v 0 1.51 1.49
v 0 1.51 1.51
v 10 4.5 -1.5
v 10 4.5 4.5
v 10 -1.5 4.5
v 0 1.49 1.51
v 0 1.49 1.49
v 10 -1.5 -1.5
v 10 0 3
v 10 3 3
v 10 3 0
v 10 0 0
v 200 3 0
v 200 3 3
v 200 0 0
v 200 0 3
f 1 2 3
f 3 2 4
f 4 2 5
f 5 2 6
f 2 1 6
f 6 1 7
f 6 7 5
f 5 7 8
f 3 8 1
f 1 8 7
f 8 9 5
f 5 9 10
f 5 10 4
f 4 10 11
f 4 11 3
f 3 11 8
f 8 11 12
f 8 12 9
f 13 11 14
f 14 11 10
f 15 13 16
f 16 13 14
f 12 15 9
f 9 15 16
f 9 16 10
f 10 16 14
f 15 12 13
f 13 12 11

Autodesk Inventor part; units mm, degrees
ref_plane "YZ Plane" through (0, 0, 0) normal (1, 0, 0) x (0, 1, 0)
ref_plane "XZ Plane" through (0, 0, 0) normal (0, 1, 0) x (-1, 0, 0)
ref_plane "XY Plane" through (0, 0, 0) normal (0, 0, 1) x (1, 0, 0)
sketch "Skizze1" plane through (0, 0, 0) normal (0, 0, 1) x (1, 0, 0)
  line L0 (0, 0) -> (200, 0)
  line L1 (200, 0) -> (200, 3)
  line L2 (200, 3) -> (0, 3)
  line L3 (0, 3) -> (0, 0)
  dimension "d0" = 200
  dimension "d1" = 3
extrude "Extrusion1" add sketch "Skizze1" along normal blind 3
sketch "Skizze2" plane through (200, 0, 0) normal (1, 0, 0) x (0, 0, -1)
  point P0 (0, 0)
sketch "Skizze3" plane through (0, 0, 0) normal (0, -1, 0) x (1, 0, 0)
  line L0 (0, 0) -> (200, 0) projected
  line L1 (200, 0) -> (53.164, 0)
  dimension "d4" = 146.836
sketch "Skizze4" plane through (10, 0, 0) normal (-1, 0, 0) x (0, 0, 1)
  line L0 (0, 3) -> (3, 3) projected
  line L1 (0, 0) -> (3, 3)
  line L2 (3, 3) -> (0, 3)
  line L3 (0, 3) -> (3, 0)
  line L4 (-1.5, -1.5) -> (4.5, -1.5)
  line L5 (4.5, -1.5) -> (4.5, 4.5)
  line L6 (4.5, 4.5) -> (-1.5, 4.5)
  line L7 (-1.5, 4.5) -> (-1.5, -1.5)
  line L8 (-1.5, -1.5) -> (4.5, 4.5) construction
  line L9 (4.5, -1.5) -> (-1.5, 4.5) construction
  point P0 (1.5, 1.5)
  dimension "d14" = 6
  dimension "d15" = 6
extrude "Extrusion2" add sketch "Skizze4" along normal blind 10 contours L0 L1 L3 | L7 L6 L5 L4
chamfer "Fase1" distance 2.99 distance2 10 1 edges at (0, 1.5, -1.5) measured on face at (0, 2.5, 0.5)
chamfer "Fase2" distance 2.99 distance2 10 1 edges at (0, 1.5, 4.5) measured on face at (0, 2.5, 2.493)
chamfer "Fase3" distance 2.99 distance2 10 1 edges at (0, -1.5, 1.5) measured on face at (0, 0.5, 1.5035)
chamfer "Fase4" distance 2.99 distance2 10 1 edges at (0, 4.5, 1.5) measured on face at (0, 3.4965, 1.4965)
sketch "Skizze9" plane through (10, 0, 0) normal (0, -1, 0) x (1, 0, 0)
  line L0 (0, 3) -> (190, 3) projected
  line L1 (40.0497, 3) -> (40.0497, 0)
  line L2 (0, 0) -> (190, 0) projected
  point P0 (-10, 0)
sketch "Skizze10" plane through (0, 0, 0) normal (0, 0, -1) x (-1, 0, 0)
  line L0 (-200, 3) -> (-10, 3) projected
  line L1 (-51.2532, 3) -> (-50.0501, 0)
  line L2 (-10, 0) -> (-200, 0) projected
  point P0 (0, 0)
properties part number "blueStick"
